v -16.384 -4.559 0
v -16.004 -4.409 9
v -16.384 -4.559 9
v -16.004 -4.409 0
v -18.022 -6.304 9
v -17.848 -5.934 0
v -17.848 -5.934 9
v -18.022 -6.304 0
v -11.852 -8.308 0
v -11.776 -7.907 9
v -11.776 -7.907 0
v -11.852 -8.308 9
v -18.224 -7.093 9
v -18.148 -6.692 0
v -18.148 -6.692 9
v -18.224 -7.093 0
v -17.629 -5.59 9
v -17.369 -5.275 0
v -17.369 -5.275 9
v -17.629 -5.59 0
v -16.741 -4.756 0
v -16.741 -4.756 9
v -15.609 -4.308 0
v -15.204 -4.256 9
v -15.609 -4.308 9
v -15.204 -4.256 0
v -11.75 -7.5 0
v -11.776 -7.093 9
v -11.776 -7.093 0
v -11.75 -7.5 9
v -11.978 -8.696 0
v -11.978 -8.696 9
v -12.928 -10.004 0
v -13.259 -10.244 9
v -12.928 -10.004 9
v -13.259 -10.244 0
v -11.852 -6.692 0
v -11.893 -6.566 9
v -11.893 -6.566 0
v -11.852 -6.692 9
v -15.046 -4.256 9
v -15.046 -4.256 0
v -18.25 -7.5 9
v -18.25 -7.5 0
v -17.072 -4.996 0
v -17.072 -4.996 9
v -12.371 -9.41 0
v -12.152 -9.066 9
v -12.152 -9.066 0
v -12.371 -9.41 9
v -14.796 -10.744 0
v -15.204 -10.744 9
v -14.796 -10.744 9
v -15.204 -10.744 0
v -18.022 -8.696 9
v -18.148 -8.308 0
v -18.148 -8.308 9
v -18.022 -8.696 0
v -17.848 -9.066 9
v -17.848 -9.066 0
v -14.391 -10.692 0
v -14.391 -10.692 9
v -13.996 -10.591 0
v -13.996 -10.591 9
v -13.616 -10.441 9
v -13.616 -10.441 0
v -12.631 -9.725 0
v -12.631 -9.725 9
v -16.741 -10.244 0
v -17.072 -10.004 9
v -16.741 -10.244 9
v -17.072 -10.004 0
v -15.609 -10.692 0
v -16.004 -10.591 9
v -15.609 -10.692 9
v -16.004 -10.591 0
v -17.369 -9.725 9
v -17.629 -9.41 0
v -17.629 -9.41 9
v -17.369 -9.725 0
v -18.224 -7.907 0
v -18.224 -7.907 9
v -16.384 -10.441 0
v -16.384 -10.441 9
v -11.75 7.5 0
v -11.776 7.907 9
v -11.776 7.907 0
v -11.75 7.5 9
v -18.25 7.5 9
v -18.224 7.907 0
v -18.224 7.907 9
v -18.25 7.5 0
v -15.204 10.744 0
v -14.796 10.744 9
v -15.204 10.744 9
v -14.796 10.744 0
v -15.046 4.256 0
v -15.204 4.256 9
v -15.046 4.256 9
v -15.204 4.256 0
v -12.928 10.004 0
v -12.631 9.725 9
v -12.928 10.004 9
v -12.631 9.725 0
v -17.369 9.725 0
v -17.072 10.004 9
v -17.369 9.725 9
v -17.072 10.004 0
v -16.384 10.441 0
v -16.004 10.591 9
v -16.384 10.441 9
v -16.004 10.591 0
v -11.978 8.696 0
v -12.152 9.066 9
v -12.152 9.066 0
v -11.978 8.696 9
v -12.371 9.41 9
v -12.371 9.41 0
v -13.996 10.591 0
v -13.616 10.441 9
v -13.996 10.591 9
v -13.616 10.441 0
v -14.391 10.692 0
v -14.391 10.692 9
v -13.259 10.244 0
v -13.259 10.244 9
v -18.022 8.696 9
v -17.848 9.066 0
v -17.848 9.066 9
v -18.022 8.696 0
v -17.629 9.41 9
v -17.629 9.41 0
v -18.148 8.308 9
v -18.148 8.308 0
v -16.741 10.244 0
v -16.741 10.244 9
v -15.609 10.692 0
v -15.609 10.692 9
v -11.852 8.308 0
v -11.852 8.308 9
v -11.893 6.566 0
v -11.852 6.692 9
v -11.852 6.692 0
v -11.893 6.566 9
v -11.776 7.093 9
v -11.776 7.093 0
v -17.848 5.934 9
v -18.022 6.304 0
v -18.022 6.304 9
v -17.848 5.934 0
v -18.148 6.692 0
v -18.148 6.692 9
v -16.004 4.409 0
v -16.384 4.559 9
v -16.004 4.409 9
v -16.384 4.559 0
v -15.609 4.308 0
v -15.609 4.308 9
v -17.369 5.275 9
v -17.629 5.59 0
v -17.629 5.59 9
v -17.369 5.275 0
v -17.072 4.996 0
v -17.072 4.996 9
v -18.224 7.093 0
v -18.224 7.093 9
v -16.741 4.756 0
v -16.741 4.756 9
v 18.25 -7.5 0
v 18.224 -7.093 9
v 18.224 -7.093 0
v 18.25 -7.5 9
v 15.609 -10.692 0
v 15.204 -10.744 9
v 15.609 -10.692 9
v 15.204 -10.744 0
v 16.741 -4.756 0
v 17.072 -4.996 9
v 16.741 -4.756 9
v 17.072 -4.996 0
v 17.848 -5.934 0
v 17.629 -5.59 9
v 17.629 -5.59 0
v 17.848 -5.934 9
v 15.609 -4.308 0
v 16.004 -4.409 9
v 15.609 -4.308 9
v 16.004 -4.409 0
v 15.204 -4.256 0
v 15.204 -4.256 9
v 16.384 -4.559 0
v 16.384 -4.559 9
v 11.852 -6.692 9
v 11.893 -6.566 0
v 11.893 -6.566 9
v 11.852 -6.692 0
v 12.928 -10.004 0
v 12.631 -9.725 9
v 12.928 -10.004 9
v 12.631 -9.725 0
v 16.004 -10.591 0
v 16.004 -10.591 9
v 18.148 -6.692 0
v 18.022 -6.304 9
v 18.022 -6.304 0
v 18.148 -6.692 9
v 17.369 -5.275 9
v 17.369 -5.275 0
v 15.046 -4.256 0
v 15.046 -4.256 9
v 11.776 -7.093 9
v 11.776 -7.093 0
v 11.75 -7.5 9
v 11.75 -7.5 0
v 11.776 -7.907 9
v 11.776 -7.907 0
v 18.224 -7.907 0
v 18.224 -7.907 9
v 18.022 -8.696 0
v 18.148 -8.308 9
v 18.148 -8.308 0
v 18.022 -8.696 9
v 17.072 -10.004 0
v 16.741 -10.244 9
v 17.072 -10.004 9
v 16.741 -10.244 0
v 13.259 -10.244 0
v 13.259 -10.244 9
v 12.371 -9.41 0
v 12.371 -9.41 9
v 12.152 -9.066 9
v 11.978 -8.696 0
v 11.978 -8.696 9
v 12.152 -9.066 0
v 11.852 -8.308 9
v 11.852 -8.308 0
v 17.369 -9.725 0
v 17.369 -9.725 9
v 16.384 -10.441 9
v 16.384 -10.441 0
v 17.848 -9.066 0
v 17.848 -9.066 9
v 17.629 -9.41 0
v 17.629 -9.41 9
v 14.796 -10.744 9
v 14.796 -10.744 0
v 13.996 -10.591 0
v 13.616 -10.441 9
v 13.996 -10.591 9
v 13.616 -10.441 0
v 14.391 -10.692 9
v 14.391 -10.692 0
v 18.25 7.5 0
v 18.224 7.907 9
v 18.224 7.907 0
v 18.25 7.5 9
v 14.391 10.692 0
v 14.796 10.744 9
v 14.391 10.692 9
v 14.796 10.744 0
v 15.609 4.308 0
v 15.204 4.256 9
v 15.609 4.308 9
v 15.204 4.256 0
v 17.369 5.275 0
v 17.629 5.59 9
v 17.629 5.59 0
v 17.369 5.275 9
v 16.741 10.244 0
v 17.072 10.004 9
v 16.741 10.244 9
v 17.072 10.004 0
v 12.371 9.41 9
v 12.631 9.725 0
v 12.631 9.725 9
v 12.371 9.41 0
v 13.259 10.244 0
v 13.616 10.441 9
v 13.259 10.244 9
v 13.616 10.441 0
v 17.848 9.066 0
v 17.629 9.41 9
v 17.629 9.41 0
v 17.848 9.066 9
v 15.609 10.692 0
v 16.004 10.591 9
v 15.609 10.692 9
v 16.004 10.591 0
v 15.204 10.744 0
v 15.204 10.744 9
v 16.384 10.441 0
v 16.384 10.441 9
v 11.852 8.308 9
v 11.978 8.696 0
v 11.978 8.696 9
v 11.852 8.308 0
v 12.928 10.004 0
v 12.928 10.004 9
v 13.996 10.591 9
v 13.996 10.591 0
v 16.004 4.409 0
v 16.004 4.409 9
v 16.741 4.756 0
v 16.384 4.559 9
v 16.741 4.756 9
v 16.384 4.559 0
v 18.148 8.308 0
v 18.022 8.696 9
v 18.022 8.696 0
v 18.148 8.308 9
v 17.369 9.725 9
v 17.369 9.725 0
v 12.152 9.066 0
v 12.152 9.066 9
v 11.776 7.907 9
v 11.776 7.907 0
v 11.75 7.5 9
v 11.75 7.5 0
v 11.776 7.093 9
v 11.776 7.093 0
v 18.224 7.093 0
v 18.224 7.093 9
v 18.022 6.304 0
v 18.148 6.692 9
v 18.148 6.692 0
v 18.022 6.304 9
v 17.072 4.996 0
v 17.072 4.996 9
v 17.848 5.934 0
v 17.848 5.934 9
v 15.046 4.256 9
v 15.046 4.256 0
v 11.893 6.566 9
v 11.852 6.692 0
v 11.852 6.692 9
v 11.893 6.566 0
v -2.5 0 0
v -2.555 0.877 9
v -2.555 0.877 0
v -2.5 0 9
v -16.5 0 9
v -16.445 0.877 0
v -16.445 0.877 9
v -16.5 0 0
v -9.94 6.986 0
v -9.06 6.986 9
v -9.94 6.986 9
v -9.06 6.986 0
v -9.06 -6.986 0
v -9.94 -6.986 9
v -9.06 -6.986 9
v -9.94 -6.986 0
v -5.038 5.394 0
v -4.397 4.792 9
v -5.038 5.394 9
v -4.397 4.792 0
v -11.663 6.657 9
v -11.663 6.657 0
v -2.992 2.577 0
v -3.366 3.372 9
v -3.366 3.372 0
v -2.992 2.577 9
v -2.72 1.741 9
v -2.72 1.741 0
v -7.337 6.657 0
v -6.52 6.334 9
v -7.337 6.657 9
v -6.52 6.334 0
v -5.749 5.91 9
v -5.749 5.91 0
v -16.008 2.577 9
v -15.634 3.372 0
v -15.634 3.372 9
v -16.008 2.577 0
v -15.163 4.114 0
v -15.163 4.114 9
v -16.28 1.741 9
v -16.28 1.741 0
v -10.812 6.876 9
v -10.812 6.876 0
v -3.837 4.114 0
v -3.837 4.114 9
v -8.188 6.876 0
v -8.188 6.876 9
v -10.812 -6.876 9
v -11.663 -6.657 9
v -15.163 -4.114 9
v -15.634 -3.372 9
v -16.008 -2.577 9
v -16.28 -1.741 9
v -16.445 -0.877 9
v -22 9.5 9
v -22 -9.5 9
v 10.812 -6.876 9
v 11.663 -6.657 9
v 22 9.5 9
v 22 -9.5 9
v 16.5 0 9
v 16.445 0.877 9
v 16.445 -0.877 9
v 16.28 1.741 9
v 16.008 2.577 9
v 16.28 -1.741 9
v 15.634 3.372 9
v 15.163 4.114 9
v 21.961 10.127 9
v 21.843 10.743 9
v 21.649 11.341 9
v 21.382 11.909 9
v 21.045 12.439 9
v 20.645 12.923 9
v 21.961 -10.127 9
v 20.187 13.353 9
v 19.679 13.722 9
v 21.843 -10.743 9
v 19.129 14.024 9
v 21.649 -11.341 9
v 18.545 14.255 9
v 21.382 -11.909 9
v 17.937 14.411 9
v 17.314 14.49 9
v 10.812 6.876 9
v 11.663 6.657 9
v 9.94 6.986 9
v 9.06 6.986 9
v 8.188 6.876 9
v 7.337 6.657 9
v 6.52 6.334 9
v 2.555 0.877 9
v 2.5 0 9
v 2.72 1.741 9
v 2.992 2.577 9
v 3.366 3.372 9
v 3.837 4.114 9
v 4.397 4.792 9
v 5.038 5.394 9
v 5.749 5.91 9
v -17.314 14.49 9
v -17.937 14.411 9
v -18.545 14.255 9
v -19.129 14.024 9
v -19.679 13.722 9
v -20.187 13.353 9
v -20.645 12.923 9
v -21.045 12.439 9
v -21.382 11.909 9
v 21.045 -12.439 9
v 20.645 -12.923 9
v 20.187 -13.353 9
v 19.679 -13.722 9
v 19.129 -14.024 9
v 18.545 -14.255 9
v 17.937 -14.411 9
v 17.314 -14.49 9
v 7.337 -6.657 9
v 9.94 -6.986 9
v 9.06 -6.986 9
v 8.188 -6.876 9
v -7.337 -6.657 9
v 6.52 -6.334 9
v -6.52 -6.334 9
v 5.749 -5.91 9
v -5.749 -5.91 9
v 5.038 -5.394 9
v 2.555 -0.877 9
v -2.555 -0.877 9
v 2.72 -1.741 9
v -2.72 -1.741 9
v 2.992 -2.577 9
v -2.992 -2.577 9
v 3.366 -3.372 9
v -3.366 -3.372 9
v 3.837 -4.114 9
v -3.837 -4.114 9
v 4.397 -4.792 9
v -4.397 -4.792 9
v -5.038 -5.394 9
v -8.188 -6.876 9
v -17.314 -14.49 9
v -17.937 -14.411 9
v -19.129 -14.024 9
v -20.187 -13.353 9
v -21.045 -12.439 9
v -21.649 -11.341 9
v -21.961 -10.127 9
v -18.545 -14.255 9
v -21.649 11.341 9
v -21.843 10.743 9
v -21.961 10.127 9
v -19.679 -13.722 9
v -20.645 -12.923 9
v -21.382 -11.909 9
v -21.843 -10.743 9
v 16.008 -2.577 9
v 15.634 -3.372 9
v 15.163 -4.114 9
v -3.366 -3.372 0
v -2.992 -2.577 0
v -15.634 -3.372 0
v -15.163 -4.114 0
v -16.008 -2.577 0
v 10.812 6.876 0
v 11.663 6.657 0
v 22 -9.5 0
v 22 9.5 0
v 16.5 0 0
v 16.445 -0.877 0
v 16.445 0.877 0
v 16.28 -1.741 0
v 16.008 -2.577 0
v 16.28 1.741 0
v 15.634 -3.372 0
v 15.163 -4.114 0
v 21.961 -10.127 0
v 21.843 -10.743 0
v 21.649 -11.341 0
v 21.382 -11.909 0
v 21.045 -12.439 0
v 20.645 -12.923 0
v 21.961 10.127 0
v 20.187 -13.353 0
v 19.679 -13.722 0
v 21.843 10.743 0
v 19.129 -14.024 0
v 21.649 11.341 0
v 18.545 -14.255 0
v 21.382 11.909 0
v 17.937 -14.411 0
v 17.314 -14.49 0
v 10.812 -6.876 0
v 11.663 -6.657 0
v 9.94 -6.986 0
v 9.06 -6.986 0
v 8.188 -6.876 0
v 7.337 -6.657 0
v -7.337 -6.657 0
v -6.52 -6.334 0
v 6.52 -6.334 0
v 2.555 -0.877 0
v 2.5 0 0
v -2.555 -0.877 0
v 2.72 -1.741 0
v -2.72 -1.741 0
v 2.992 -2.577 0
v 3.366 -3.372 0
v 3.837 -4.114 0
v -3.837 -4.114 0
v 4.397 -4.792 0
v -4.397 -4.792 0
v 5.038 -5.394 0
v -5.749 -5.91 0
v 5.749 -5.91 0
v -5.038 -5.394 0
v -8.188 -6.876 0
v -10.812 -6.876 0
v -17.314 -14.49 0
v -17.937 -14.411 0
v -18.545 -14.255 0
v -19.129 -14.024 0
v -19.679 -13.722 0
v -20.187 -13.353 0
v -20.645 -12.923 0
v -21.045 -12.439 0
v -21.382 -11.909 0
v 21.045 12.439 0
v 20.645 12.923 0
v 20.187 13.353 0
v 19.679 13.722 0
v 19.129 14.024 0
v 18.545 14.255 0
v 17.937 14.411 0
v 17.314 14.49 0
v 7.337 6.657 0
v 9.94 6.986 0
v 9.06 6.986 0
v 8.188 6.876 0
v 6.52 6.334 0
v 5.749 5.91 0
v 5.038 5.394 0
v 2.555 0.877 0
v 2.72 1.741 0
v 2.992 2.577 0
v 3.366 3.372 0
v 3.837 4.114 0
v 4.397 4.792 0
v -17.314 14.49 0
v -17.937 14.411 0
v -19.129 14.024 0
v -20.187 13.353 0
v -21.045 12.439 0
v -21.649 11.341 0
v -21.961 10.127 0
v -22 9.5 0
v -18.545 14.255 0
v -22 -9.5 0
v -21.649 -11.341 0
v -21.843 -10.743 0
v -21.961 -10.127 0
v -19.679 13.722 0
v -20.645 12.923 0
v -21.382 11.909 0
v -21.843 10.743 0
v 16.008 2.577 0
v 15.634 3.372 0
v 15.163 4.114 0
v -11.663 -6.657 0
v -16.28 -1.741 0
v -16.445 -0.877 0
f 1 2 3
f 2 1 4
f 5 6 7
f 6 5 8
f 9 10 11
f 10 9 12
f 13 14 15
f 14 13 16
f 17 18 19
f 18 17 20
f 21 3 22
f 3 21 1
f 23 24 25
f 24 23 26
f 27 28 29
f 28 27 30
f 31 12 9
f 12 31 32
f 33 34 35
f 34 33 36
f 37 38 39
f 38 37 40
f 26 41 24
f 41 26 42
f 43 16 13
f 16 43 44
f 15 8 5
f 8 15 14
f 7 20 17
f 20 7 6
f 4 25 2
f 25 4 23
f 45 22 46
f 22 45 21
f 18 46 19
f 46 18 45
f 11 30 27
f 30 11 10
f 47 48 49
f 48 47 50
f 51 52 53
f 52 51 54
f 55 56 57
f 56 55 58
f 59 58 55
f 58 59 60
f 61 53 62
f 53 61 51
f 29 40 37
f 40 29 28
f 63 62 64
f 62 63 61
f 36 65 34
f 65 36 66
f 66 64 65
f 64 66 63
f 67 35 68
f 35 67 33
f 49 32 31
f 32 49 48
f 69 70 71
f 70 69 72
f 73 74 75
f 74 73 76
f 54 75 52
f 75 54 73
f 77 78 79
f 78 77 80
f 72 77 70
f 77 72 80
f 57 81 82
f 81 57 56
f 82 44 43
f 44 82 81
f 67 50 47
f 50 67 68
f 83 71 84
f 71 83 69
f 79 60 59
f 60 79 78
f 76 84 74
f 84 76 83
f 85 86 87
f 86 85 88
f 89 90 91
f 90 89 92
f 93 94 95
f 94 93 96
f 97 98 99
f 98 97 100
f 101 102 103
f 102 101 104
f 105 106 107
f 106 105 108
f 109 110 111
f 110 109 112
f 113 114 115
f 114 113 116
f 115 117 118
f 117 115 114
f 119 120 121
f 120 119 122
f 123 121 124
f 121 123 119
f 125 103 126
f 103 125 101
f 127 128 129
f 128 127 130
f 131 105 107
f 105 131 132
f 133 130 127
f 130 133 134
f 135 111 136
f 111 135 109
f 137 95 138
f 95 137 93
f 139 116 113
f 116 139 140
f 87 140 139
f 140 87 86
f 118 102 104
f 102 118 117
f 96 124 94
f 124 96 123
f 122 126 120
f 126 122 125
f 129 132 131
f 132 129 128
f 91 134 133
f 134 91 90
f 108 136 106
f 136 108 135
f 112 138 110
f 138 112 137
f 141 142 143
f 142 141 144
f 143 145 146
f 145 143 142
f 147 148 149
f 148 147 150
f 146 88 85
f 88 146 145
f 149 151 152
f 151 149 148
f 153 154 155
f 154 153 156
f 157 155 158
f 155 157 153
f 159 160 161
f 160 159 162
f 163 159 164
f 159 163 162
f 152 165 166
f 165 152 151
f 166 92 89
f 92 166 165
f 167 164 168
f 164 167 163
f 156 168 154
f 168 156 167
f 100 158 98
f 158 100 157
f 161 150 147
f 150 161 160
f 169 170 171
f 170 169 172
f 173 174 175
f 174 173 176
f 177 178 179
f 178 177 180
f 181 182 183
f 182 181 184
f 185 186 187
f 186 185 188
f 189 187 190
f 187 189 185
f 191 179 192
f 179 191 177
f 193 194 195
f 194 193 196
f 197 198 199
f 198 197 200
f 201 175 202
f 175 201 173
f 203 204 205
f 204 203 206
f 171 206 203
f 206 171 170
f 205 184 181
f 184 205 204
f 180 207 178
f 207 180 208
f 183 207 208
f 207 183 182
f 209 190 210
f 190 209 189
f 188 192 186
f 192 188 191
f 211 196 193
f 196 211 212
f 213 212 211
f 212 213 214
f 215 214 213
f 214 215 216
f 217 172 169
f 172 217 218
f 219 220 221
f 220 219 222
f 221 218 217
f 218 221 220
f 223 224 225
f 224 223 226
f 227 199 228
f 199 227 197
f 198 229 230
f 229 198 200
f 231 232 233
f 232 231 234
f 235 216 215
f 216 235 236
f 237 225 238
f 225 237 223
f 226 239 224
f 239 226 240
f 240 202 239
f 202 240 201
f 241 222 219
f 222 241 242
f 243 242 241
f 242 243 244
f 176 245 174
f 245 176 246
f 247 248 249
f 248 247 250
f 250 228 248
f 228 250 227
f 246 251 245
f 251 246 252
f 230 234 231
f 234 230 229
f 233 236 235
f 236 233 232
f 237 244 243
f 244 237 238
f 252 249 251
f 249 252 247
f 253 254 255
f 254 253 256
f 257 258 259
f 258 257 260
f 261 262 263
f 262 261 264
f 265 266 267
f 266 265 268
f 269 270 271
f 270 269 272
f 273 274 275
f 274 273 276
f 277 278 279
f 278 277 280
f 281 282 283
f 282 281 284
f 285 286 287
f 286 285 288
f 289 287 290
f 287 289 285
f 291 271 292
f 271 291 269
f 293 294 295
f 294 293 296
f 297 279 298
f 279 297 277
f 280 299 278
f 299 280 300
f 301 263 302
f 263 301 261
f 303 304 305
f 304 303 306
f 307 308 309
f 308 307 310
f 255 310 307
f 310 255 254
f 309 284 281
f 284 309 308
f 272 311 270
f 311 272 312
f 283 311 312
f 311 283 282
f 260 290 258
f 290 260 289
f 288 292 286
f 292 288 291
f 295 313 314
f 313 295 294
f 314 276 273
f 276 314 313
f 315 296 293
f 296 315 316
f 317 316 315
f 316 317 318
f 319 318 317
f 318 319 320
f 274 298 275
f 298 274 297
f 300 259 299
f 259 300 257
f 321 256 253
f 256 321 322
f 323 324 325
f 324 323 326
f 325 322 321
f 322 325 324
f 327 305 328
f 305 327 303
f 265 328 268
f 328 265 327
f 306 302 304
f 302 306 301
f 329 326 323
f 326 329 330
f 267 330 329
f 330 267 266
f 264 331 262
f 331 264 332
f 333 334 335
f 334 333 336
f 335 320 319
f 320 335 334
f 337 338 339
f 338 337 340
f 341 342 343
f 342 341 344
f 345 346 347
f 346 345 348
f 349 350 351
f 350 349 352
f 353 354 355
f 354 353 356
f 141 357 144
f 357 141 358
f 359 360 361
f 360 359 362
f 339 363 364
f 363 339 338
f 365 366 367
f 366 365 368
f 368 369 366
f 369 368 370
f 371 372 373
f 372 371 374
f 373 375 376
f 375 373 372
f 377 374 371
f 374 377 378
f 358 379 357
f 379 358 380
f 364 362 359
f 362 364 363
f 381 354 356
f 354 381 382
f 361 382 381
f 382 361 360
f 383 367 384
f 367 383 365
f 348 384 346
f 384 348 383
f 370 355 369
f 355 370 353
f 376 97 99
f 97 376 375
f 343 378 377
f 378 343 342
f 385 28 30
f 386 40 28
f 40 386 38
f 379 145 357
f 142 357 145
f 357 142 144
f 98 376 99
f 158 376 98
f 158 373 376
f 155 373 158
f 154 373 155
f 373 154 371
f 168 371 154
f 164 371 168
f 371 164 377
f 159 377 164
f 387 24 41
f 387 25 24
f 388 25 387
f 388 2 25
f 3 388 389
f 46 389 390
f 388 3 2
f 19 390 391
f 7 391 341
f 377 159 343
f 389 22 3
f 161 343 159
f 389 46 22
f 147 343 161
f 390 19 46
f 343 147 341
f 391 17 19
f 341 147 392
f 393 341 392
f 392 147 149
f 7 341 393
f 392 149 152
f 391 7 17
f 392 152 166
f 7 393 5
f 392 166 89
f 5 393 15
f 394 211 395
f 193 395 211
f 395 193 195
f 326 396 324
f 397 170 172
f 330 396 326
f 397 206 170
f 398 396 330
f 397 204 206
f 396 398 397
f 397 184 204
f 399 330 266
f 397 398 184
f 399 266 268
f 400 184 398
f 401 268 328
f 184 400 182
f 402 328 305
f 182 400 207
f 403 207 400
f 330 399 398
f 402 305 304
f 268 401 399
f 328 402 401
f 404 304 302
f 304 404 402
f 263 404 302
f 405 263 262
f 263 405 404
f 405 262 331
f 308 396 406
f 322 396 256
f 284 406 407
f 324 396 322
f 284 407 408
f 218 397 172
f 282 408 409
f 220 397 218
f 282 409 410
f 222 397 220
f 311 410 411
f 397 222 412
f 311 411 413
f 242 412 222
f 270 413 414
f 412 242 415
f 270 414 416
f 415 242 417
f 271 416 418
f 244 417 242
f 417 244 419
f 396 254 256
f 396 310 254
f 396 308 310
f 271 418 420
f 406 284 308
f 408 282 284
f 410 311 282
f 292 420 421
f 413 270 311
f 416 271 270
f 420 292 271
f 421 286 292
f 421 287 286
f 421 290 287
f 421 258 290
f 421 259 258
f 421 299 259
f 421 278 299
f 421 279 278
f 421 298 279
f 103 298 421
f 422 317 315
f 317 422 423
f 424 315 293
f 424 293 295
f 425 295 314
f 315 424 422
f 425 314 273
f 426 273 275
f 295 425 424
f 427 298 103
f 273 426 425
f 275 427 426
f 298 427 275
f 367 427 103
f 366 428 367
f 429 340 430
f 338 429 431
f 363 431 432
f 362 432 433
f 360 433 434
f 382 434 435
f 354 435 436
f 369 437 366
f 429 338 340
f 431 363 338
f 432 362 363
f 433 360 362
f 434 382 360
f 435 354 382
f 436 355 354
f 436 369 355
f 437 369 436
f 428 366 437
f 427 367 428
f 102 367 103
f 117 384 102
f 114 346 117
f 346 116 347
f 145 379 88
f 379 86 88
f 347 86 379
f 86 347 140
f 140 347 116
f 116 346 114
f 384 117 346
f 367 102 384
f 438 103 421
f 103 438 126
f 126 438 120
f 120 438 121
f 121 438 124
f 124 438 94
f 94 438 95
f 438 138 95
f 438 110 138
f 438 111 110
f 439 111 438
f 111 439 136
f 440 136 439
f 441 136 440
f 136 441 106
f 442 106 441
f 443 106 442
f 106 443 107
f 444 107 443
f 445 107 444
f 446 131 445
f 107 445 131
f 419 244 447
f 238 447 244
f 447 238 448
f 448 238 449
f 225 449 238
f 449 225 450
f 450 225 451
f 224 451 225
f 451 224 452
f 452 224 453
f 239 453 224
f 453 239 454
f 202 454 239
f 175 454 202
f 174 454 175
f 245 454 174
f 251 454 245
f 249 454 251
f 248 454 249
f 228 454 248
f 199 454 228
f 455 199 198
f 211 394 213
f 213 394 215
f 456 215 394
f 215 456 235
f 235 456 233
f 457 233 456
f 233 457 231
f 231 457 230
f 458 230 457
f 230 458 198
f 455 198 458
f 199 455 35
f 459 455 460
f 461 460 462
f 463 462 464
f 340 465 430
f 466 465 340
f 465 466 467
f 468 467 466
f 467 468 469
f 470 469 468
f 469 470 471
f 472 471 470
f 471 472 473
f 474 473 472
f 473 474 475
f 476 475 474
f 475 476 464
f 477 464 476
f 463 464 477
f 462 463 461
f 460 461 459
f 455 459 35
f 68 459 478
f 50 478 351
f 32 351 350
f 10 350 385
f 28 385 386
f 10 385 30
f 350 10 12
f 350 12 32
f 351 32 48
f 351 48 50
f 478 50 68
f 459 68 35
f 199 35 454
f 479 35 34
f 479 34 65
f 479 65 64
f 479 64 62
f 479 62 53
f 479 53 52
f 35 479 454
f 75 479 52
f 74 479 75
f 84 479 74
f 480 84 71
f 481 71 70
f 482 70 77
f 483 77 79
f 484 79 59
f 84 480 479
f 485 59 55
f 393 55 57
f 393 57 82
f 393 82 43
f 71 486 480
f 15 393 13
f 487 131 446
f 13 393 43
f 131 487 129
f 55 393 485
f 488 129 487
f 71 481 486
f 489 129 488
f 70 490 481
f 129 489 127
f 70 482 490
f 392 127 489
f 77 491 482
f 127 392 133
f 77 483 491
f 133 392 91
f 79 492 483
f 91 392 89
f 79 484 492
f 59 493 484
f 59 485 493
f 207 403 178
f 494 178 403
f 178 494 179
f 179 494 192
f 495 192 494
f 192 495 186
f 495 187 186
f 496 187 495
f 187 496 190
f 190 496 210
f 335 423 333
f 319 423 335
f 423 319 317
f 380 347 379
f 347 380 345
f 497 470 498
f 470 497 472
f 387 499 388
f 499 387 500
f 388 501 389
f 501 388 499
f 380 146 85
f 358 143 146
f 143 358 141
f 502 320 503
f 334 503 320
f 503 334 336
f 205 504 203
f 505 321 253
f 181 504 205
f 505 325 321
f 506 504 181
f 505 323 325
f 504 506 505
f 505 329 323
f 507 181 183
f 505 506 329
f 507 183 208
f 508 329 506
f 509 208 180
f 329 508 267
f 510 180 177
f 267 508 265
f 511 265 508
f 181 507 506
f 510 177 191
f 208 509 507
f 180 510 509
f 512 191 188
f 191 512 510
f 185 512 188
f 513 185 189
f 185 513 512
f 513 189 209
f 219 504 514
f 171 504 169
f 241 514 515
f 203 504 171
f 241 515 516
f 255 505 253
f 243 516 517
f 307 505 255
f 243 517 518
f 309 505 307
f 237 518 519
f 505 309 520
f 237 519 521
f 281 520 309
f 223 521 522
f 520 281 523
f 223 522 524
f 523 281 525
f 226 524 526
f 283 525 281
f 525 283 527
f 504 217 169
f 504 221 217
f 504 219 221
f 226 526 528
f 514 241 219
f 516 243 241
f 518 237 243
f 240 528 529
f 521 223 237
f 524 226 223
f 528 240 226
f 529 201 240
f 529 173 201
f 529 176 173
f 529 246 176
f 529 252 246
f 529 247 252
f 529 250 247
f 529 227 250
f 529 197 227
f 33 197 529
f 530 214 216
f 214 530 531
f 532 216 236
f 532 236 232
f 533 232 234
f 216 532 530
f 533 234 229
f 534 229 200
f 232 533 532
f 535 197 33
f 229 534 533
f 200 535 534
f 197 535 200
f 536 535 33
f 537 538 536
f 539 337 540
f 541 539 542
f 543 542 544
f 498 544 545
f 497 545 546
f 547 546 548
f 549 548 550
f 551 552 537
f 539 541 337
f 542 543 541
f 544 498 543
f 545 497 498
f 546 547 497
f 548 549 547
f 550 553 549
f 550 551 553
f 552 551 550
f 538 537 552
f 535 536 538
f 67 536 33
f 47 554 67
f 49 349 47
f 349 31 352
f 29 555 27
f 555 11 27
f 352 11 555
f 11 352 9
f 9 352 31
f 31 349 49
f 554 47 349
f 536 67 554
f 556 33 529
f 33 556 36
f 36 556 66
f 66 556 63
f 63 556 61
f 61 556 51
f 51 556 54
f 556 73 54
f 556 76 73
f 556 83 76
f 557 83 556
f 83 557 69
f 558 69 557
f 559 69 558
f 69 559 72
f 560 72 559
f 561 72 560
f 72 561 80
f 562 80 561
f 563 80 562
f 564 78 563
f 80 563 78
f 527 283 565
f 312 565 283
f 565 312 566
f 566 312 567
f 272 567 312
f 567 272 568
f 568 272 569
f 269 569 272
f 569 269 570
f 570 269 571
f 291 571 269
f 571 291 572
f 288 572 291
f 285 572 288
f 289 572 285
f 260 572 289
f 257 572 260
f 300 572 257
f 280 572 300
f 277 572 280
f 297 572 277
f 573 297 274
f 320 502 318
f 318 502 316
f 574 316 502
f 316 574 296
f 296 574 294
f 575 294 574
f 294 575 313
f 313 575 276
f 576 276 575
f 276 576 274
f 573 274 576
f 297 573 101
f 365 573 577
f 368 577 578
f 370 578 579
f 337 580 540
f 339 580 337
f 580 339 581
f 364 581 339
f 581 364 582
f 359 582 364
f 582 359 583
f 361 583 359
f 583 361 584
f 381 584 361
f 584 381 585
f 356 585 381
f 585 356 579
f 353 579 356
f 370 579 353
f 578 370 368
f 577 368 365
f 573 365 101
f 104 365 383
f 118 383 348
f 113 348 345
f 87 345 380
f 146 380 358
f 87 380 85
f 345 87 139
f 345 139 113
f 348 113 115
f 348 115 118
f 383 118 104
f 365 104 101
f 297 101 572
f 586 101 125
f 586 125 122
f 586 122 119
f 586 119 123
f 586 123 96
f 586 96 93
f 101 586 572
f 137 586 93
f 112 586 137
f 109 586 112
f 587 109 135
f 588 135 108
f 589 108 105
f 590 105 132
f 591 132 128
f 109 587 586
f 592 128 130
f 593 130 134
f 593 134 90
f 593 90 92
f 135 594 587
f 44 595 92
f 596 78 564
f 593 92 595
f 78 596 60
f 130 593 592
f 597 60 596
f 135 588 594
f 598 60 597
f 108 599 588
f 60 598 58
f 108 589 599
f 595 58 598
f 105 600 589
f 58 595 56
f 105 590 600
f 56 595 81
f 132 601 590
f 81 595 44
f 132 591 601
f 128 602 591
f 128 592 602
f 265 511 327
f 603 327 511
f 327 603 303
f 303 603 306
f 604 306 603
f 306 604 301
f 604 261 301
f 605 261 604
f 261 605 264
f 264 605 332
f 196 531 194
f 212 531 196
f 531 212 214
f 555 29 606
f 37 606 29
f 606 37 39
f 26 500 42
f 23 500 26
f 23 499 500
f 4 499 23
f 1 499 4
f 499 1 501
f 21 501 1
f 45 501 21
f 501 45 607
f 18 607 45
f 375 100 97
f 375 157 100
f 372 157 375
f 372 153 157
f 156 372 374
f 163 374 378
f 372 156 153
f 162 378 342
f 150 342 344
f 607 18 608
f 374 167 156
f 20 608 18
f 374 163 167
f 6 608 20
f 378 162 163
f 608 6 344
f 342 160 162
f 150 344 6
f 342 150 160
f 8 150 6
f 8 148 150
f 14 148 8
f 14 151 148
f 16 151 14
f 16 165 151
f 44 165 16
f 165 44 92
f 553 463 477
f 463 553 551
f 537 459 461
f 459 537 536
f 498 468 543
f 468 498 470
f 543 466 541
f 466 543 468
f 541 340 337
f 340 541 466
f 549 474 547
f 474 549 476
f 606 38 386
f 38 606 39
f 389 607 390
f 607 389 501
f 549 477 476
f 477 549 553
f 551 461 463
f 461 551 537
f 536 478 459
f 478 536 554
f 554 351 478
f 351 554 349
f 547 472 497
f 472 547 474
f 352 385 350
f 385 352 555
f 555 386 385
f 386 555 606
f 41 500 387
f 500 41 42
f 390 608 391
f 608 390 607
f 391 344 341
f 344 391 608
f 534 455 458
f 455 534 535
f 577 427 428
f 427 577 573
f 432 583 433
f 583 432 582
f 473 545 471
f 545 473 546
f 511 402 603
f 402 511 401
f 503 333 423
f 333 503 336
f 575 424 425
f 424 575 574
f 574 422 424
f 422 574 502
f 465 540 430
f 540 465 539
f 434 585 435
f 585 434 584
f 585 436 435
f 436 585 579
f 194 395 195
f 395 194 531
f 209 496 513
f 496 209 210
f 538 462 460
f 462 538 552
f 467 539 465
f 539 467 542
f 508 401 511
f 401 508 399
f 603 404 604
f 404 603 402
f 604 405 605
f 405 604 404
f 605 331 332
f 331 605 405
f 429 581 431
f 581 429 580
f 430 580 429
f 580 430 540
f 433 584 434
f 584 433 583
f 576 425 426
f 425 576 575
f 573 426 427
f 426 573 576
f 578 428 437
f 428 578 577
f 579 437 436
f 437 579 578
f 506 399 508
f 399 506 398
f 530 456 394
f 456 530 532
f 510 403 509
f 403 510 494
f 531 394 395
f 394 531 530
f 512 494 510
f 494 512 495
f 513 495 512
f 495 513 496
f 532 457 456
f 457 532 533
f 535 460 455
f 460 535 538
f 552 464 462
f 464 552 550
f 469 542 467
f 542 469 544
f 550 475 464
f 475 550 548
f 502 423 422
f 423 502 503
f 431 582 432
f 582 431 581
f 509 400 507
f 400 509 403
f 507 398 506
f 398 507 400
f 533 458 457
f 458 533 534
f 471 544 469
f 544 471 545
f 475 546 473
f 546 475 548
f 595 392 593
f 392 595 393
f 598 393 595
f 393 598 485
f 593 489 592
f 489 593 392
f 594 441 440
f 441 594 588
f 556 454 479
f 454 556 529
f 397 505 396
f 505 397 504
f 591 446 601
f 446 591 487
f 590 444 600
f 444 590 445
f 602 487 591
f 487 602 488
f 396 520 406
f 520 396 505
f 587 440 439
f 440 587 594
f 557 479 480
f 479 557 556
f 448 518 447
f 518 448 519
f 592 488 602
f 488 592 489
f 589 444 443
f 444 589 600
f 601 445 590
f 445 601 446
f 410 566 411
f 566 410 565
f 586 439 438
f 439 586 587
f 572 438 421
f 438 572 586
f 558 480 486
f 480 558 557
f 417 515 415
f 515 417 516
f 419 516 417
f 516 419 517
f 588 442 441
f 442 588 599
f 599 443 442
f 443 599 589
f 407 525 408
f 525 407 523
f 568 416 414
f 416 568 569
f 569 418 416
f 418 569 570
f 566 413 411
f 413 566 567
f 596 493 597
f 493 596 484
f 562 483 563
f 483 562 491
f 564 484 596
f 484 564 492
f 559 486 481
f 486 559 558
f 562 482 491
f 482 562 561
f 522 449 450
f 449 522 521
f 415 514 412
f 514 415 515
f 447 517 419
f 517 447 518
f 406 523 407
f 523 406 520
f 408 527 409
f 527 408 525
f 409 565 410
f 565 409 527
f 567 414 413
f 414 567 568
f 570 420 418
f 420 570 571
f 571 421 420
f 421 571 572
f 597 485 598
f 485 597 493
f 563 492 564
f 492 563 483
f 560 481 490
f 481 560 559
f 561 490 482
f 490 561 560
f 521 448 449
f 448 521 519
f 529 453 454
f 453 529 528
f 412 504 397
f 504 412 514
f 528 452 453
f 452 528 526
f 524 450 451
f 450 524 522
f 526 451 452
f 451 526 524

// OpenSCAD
$fn = 50;


difference() {
	union() {
		hull() {
			translate(v = [-17.0000000000, 9.5000000000, 0]) {
				cylinder(h = 9, r = 5);
			}
			translate(v = [17.0000000000, 9.5000000000, 0]) {
				cylinder(h = 9, r = 5);
			}
			translate(v = [-17.0000000000, -9.5000000000, 0]) {
				cylinder(h = 9, r = 5);
			}
			translate(v = [17.0000000000, -9.5000000000, 0]) {
				cylinder(h = 9, r = 5);
			}
		}
	}
	union() {
		#translate(v = [-15.0000000000, -7.5000000000, -100.0000000000]) {
			cylinder(h = 200, r = 3.2500000000);
		}
		#translate(v = [-15.0000000000, 7.5000000000, -100.0000000000]) {
			cylinder(h = 200, r = 3.2500000000);
		}
		#translate(v = [15.0000000000, -7.5000000000, -100.0000000000]) {
			cylinder(h = 200, r = 3.2500000000);
		}
		#translate(v = [15.0000000000, 7.5000000000, -100.0000000000]) {
			cylinder(h = 200, r = 3.2500000000);
		}
		#translate(v = [-9.5000000000, 0, 0]) {
			cylinder(h = 9, r = 7.0000000000);
		}
		#translate(v = [9.5000000000, 0, 0]) {
			cylinder(h = 9, r = 7.0000000000);
		}
	}
}
